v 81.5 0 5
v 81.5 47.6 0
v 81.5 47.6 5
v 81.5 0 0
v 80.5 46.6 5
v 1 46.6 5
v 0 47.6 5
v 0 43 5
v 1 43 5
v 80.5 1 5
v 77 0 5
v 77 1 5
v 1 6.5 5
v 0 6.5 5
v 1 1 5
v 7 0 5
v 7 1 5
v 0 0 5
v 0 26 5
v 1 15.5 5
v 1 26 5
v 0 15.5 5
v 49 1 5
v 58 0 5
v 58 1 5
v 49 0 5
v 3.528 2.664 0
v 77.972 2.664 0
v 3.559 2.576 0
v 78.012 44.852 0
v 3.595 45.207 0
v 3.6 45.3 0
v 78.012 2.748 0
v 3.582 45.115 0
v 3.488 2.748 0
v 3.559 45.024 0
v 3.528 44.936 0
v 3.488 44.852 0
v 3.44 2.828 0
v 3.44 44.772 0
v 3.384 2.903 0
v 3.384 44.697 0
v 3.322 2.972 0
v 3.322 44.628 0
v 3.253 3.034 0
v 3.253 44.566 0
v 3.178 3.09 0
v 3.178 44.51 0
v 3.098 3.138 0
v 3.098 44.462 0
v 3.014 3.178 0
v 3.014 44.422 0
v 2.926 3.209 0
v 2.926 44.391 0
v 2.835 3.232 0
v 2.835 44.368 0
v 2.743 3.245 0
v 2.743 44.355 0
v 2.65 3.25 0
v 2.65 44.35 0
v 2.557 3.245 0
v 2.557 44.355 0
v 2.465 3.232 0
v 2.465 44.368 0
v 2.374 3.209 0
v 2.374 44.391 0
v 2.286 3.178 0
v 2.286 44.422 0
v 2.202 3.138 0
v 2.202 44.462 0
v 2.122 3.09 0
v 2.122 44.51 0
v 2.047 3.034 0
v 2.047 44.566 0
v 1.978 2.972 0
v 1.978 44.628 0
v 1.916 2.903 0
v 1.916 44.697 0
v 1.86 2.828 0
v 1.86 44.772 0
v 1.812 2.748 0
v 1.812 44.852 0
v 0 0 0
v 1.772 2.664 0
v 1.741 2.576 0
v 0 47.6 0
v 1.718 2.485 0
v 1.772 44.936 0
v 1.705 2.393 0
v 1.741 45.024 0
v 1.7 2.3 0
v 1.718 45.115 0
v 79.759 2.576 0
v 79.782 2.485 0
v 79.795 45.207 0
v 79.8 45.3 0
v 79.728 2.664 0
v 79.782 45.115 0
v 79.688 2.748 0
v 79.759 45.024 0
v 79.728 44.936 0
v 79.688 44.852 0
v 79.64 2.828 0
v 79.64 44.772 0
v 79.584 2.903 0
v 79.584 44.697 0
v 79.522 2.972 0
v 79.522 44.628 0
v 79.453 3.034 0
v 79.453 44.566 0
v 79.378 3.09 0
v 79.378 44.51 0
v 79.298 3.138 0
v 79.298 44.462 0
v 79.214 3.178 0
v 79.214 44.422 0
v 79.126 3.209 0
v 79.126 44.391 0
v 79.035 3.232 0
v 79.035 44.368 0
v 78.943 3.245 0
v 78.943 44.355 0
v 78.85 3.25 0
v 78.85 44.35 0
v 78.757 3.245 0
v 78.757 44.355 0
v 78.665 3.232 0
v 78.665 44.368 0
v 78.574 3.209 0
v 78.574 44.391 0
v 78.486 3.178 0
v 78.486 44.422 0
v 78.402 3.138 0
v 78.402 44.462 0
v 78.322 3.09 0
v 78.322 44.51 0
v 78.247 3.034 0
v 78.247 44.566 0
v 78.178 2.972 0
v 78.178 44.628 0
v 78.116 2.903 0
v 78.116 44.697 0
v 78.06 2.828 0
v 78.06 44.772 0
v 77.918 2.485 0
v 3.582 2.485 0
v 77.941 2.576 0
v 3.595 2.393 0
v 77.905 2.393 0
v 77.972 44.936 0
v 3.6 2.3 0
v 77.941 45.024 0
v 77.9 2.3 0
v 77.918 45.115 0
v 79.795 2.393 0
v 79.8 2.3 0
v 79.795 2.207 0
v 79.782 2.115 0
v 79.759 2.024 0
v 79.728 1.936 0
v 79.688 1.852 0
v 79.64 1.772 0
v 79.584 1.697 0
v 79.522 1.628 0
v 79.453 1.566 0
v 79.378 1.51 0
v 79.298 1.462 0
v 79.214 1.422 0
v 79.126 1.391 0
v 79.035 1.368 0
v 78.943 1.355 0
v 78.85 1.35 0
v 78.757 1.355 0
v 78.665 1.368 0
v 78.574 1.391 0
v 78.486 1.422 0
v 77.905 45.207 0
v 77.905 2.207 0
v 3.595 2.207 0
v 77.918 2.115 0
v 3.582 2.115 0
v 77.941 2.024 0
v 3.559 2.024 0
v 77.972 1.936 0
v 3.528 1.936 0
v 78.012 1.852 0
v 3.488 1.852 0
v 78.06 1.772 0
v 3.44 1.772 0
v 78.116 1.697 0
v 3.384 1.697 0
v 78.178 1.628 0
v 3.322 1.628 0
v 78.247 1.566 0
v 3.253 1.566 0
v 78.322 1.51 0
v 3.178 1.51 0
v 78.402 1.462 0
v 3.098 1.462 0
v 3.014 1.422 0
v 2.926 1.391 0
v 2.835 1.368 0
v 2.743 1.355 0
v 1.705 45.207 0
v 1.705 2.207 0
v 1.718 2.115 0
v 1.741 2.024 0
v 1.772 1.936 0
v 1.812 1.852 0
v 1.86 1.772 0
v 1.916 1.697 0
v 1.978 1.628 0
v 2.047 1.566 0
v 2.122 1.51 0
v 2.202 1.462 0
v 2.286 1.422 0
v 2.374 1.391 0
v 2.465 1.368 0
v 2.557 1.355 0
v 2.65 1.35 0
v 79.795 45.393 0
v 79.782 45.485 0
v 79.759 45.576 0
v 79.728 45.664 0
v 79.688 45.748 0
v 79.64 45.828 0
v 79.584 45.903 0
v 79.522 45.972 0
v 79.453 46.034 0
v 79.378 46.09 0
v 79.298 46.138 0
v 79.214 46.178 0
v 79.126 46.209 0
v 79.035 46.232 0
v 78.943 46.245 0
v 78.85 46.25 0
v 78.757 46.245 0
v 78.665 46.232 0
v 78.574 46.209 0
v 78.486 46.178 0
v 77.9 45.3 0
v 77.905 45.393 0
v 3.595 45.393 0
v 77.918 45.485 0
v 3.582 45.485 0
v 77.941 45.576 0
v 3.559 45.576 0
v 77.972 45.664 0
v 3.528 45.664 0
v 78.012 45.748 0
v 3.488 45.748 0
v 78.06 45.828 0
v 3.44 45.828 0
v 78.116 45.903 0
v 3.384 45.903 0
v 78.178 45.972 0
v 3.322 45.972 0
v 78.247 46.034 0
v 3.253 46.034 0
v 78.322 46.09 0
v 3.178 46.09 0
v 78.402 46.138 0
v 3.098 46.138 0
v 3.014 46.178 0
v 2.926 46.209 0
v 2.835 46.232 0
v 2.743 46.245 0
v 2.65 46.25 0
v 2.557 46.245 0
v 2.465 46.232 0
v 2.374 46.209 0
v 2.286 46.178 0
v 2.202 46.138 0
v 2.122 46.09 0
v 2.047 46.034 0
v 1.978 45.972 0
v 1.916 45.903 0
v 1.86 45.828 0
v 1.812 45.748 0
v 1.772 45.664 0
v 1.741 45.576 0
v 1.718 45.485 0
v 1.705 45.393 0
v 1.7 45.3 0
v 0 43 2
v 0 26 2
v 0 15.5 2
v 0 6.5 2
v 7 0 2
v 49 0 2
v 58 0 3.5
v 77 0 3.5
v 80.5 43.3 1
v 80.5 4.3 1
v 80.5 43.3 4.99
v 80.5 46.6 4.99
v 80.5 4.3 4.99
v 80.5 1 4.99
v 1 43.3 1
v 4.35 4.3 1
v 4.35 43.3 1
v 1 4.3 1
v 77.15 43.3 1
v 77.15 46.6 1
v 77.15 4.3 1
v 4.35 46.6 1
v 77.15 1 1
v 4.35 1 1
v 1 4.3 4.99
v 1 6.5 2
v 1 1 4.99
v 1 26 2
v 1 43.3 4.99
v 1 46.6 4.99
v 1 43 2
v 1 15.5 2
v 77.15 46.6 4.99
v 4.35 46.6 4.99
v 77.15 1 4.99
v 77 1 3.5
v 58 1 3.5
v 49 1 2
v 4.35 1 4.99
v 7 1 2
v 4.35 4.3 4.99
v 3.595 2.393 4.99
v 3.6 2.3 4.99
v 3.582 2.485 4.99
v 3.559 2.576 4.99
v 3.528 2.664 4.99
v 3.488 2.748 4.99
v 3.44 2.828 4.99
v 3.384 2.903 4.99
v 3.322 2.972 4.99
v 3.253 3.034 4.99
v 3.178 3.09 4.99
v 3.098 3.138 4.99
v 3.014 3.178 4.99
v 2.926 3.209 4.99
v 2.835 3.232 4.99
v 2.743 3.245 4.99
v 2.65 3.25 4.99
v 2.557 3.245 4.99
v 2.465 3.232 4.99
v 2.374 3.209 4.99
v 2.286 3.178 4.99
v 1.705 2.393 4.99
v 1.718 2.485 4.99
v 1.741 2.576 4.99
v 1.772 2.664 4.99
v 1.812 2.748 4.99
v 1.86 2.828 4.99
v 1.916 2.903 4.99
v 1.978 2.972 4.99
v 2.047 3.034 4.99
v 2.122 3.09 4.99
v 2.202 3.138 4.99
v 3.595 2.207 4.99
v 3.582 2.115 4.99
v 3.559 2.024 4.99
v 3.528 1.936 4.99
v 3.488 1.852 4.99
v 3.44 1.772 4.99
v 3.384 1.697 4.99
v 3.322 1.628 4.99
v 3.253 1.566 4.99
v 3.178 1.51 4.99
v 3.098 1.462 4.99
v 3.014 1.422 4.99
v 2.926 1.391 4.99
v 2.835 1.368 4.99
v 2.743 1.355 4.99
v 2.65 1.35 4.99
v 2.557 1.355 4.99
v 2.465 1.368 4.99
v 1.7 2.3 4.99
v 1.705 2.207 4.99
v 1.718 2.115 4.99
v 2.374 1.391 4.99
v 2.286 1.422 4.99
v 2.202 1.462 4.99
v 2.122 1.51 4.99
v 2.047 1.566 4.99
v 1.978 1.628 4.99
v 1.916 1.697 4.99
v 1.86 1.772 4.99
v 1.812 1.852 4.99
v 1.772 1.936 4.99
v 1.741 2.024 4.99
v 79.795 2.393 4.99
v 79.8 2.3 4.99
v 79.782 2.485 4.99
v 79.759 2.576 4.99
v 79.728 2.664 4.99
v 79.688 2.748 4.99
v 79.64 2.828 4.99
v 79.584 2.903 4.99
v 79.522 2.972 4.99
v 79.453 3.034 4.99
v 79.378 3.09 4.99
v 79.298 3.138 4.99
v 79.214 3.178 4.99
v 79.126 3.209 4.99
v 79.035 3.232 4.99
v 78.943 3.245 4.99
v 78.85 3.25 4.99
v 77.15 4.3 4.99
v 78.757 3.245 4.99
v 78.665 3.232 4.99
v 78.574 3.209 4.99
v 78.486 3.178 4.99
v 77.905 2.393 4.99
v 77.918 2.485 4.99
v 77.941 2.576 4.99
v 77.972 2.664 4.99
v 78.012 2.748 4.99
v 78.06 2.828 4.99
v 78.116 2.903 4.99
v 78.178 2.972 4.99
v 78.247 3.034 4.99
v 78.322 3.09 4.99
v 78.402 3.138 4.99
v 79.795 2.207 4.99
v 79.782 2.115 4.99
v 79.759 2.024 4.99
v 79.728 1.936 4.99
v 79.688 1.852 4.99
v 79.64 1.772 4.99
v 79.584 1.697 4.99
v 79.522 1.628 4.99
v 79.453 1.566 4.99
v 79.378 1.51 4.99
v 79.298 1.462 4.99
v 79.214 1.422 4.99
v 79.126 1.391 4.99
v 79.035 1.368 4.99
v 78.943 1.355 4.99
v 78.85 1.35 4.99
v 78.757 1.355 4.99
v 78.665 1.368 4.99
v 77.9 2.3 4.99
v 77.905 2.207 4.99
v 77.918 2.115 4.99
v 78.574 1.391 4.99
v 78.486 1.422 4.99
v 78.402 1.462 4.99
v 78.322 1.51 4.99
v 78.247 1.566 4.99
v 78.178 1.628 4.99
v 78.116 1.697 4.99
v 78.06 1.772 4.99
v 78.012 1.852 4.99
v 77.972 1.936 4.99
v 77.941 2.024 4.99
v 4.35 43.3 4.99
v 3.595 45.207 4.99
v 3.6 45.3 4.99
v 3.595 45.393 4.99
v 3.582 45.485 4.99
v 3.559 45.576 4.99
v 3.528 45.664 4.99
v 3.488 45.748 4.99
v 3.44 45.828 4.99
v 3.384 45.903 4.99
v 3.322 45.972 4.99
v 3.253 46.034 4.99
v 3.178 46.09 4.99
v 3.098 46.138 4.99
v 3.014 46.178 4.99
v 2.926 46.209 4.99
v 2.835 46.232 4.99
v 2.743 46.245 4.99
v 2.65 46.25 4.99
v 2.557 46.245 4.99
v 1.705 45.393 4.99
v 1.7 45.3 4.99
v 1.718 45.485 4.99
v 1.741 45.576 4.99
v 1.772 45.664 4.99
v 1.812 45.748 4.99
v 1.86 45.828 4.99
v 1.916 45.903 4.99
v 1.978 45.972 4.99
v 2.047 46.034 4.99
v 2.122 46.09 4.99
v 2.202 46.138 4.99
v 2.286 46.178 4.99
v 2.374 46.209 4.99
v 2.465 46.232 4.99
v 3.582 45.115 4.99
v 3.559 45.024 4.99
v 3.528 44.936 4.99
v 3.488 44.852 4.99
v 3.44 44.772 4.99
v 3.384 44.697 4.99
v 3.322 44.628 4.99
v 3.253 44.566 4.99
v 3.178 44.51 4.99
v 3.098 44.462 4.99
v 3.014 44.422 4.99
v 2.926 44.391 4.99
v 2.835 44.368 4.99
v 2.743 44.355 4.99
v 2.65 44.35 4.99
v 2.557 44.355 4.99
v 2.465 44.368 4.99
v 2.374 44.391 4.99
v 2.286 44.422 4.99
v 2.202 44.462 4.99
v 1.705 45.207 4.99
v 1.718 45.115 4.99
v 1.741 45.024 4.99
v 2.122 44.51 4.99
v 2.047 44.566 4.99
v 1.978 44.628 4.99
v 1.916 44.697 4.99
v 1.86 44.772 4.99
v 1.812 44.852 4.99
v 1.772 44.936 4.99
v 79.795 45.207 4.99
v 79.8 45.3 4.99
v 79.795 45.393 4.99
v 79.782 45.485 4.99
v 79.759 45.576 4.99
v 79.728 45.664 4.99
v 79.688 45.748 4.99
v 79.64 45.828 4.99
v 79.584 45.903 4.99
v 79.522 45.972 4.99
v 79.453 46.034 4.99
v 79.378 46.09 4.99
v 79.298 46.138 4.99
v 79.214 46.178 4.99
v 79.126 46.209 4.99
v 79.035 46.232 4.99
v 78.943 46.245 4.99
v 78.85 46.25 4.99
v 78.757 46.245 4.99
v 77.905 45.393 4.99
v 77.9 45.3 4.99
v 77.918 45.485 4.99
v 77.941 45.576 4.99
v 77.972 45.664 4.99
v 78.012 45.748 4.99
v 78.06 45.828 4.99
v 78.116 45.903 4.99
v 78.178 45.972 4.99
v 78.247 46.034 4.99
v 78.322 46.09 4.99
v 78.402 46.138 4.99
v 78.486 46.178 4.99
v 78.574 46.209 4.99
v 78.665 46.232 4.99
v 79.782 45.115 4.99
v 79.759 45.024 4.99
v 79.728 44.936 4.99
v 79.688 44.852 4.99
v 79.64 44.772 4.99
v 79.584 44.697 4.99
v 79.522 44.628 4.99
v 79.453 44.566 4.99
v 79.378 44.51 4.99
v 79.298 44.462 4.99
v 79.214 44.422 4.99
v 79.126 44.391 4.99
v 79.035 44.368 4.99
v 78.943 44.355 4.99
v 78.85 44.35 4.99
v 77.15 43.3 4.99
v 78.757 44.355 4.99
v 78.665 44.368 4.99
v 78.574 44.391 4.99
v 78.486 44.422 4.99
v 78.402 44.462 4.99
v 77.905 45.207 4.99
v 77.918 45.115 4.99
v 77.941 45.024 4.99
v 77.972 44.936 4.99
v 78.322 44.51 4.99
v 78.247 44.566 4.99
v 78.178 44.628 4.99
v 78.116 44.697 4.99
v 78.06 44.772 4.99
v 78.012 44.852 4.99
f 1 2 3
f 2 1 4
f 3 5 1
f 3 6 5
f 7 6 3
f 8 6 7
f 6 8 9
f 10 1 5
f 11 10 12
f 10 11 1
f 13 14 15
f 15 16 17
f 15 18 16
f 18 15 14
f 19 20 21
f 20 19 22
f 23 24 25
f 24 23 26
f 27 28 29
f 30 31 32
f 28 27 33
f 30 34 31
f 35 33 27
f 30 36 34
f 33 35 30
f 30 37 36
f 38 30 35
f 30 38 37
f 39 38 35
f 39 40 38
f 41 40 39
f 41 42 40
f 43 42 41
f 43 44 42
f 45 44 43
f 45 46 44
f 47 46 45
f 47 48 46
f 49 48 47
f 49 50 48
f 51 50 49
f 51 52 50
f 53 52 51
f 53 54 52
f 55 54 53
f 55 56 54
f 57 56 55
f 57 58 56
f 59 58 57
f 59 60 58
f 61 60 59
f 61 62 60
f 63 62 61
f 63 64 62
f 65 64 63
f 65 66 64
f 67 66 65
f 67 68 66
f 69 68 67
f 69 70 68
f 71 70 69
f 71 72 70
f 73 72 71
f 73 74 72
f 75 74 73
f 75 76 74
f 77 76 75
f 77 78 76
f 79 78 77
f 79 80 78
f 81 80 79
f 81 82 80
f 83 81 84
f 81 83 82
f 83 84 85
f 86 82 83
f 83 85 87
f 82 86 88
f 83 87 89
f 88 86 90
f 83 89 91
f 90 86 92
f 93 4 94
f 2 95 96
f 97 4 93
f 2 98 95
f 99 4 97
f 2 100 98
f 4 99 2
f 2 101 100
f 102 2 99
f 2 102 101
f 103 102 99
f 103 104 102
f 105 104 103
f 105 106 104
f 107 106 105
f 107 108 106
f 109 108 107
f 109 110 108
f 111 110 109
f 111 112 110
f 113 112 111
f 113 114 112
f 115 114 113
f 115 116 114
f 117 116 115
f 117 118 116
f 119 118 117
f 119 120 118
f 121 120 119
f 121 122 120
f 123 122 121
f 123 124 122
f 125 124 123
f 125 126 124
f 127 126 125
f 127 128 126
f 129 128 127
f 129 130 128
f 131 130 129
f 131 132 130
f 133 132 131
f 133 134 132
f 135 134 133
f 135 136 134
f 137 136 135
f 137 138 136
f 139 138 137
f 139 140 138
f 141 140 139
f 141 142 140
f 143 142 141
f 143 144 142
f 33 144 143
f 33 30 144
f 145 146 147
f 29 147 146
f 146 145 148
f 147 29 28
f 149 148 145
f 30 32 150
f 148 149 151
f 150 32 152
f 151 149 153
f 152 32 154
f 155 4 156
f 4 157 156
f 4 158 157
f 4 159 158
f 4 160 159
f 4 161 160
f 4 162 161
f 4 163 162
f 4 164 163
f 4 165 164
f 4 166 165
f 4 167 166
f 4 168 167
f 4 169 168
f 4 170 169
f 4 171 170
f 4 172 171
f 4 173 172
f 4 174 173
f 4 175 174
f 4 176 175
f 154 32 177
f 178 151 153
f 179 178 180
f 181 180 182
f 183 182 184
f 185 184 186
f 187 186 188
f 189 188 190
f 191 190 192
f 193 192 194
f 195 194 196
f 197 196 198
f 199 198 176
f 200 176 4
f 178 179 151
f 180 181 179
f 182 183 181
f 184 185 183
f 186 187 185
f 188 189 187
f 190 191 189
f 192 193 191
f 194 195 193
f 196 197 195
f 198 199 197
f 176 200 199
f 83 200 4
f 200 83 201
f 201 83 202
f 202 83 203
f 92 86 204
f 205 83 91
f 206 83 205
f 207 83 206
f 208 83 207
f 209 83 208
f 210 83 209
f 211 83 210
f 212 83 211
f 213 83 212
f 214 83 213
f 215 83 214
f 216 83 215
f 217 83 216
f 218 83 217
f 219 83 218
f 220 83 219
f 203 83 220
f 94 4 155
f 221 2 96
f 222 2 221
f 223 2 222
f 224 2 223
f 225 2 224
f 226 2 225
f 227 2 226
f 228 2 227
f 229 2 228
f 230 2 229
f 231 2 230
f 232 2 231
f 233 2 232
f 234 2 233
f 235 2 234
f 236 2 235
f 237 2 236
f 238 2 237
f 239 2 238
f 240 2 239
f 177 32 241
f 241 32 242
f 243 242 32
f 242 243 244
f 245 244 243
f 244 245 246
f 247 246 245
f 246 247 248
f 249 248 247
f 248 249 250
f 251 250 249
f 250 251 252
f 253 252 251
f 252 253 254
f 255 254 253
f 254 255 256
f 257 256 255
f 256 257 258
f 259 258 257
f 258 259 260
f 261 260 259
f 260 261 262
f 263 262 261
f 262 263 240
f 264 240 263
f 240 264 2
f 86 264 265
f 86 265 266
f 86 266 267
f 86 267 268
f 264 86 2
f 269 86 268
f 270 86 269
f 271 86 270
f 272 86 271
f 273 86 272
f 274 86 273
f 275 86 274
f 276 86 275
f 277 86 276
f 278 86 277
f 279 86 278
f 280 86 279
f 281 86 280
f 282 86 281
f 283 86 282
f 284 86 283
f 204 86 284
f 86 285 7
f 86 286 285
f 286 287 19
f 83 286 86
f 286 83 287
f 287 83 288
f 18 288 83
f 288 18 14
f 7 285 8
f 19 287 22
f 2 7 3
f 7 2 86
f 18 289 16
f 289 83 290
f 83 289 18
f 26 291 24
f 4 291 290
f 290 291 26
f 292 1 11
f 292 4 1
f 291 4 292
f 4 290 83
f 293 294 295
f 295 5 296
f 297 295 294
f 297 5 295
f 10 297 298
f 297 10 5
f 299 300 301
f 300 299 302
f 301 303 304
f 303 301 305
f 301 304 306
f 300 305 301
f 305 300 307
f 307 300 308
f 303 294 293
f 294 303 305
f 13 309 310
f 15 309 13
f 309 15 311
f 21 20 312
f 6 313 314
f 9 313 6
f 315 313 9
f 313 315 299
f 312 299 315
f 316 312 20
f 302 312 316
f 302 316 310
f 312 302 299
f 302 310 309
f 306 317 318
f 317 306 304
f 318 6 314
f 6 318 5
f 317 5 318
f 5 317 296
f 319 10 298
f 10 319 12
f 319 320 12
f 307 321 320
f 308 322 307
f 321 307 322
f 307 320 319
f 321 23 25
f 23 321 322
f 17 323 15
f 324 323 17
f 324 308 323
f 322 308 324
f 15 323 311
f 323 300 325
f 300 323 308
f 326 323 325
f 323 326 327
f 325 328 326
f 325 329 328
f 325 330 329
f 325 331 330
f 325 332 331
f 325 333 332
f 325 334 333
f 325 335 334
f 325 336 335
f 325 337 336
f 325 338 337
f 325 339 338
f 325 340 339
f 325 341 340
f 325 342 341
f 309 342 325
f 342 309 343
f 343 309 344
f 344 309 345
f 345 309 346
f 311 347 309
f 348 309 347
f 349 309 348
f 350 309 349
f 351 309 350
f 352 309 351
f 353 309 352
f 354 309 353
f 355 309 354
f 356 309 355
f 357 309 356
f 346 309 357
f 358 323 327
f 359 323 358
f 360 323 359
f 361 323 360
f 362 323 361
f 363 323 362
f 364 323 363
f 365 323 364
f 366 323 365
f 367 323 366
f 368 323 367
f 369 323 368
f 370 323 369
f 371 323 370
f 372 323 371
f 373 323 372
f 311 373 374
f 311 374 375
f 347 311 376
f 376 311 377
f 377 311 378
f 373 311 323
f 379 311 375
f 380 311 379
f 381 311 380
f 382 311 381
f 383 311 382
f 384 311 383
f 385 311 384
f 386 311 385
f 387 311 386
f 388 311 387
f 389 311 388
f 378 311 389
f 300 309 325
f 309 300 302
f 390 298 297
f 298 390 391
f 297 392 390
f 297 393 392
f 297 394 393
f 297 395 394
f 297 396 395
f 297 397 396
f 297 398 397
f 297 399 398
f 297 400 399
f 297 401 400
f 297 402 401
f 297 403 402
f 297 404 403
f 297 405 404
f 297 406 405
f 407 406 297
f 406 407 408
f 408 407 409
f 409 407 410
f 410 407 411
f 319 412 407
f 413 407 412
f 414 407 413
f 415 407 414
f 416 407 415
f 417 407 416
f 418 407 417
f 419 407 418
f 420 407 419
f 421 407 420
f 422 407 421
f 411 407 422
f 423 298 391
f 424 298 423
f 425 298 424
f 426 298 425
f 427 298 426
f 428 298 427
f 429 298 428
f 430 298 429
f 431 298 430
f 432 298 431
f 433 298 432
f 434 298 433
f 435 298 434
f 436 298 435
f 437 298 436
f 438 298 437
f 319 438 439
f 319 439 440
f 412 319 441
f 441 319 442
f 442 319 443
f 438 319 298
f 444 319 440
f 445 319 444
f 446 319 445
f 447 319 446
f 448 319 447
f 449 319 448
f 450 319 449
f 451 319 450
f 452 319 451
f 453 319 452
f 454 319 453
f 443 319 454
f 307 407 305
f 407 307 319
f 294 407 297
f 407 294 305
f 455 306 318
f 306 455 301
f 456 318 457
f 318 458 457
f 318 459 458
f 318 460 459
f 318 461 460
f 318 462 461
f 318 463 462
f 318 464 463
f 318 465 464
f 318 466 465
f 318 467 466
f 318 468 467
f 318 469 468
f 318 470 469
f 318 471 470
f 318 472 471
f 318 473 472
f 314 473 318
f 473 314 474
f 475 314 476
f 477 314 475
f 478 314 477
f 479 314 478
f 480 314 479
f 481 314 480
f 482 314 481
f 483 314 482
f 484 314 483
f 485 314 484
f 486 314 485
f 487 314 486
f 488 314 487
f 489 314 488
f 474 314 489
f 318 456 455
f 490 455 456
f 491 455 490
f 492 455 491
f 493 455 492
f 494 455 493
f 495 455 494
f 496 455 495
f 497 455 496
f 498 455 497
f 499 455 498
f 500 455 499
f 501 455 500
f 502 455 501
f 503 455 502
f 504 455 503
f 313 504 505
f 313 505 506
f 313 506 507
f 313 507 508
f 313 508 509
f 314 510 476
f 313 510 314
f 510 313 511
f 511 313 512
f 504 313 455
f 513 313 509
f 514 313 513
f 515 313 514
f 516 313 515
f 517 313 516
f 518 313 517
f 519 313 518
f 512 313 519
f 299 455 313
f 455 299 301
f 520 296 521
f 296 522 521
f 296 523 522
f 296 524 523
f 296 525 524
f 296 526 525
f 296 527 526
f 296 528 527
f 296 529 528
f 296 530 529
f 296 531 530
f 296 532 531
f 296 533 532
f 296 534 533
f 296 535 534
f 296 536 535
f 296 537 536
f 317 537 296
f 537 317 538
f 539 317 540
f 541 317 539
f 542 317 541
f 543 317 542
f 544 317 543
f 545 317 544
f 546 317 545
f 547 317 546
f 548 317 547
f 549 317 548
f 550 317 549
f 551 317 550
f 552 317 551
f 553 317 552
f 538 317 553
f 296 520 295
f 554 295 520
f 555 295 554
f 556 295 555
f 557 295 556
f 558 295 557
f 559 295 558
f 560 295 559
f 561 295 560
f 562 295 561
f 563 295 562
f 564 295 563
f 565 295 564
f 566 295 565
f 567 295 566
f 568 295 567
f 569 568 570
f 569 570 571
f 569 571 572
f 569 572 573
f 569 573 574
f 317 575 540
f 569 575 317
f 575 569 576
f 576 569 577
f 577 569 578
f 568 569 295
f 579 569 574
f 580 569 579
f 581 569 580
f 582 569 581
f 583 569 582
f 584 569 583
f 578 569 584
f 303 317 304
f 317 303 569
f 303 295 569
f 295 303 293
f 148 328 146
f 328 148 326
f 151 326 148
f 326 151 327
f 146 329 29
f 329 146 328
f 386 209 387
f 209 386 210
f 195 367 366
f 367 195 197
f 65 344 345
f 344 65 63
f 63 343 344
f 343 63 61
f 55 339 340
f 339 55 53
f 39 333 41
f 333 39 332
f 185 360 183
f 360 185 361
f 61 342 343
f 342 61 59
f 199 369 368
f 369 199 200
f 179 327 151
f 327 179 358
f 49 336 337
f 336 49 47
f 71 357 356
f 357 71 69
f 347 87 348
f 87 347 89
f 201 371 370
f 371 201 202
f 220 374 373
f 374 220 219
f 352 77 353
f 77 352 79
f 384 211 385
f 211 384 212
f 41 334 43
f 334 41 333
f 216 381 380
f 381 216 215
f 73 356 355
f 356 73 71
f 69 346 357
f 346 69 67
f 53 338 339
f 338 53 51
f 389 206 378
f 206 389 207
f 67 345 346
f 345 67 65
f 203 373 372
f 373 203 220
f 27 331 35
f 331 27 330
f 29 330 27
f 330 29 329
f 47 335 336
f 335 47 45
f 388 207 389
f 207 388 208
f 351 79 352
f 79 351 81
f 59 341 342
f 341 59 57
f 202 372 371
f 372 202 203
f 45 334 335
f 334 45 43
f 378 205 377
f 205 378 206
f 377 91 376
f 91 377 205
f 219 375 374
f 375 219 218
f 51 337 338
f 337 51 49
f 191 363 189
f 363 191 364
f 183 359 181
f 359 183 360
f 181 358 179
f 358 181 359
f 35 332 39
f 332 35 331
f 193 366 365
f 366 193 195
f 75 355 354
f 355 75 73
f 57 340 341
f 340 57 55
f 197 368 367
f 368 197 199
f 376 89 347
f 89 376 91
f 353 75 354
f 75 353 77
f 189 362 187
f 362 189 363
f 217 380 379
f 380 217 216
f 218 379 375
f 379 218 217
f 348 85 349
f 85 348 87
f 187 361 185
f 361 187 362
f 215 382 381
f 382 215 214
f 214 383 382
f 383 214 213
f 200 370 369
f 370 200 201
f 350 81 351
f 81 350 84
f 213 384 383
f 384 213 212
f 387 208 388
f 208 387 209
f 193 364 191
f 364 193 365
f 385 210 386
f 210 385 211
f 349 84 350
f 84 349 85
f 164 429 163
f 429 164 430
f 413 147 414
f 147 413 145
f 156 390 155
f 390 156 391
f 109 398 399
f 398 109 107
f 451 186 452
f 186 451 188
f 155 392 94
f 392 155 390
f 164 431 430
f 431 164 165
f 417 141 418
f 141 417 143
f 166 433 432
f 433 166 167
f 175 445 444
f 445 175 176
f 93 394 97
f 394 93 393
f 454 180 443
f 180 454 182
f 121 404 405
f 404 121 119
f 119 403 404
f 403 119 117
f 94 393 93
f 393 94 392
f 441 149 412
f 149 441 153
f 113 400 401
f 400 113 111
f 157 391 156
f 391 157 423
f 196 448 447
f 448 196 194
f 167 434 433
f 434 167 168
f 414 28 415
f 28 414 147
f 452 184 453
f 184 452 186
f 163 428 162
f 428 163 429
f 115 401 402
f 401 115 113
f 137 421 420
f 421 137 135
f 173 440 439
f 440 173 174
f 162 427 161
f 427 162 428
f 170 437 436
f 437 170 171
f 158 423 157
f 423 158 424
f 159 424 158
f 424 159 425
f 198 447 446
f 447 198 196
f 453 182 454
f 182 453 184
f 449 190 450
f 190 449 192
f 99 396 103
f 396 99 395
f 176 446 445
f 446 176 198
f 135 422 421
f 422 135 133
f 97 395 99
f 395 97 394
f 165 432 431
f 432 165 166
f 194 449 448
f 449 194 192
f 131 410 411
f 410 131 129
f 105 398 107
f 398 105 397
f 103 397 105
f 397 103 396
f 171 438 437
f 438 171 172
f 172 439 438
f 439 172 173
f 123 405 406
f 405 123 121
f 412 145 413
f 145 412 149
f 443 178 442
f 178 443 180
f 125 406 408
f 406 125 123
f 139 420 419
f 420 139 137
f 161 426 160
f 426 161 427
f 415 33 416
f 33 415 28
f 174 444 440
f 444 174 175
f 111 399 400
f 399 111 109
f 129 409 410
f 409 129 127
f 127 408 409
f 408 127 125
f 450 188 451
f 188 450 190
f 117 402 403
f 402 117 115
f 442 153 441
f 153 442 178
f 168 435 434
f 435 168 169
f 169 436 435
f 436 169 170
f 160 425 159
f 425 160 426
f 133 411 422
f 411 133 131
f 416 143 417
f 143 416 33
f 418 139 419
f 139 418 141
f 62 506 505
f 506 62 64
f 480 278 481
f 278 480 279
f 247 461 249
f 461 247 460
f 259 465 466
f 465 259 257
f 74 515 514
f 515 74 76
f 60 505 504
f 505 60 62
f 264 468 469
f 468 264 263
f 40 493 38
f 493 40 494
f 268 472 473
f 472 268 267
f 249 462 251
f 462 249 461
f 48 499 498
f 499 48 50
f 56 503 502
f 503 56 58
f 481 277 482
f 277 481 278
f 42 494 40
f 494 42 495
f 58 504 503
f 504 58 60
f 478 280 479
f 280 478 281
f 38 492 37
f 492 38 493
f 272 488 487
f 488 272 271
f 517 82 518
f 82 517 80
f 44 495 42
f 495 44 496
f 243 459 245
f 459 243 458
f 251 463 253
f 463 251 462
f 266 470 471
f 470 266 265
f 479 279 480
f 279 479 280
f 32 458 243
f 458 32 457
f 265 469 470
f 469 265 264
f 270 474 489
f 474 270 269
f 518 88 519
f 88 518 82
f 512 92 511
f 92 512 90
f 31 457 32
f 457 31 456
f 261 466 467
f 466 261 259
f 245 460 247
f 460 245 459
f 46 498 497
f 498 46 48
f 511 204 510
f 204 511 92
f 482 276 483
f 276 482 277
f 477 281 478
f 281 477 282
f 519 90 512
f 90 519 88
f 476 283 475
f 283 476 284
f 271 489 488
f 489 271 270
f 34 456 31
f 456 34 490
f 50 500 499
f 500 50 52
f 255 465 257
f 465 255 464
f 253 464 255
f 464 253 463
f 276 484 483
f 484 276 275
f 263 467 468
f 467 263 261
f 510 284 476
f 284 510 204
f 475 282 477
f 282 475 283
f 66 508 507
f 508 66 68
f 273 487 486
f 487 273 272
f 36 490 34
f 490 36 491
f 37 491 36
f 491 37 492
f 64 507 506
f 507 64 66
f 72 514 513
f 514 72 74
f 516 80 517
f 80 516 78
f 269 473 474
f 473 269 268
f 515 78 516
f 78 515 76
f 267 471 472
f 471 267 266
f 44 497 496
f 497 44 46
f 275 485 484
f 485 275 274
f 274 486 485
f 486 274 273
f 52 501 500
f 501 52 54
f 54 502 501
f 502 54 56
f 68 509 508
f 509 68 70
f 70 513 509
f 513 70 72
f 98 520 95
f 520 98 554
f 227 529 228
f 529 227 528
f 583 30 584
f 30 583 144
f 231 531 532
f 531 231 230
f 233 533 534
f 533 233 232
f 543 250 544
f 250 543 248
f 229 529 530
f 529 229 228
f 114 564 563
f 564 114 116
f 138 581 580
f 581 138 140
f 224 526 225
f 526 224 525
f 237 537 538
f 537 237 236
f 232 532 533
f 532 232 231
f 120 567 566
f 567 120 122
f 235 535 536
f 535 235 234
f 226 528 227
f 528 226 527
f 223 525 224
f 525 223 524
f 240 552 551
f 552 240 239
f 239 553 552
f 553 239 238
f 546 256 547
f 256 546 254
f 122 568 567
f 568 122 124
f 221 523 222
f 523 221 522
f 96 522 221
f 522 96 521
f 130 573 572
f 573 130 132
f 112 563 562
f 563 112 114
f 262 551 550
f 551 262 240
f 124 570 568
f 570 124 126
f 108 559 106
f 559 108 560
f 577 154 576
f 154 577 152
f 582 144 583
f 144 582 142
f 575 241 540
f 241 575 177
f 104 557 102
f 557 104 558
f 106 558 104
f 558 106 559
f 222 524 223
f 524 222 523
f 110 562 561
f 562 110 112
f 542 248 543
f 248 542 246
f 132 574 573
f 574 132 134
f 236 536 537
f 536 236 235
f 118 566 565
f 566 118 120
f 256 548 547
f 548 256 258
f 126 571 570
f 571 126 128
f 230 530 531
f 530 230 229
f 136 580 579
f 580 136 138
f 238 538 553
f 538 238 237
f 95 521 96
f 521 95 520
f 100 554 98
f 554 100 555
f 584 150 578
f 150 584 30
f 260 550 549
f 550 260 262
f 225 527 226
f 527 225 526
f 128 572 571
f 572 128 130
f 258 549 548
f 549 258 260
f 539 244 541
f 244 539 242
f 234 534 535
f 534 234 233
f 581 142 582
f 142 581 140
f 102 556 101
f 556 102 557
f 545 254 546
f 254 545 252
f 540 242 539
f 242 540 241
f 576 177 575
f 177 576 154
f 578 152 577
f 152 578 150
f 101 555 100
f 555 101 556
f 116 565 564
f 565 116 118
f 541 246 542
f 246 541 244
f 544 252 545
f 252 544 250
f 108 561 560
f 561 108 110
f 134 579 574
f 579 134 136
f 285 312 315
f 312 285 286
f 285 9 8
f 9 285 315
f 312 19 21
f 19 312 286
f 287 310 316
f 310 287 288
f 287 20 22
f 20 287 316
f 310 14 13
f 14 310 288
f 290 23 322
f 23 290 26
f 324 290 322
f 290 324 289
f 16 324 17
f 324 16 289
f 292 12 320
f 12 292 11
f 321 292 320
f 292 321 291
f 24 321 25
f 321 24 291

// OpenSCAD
//
// OpenSCAD file for a simple enclosure for the Moddable-2,
// an ESP32-based embedded development module with touch screen.
// see https://www.moddable.com/purchase.php
//
// (C) 2019 Johannes Ernst
//
// This work is licensed under a
// Creative Commons Attribution-NonCommercial-ShareAlike 4.0
// International License.
// See http://creativecommons.org/licenses/by-nc-sa/4.0/
//

// all units in mm

length =  81.5;   // outside length
width  =  47.6;   // outside width
th     =  1;      // wall thickness
depth  =  4 + th; // inside height plus wall thickness

holes_length = 25.4 * 3; // distance of mounting holes along length (apparently 3in)
holes_width  = 43;       // distance of mounting holes along width

post_length = 3.4;       // length of the post that contains the screw hole
post_width  = 4;         // width of the post that contains the screw hole

hole_r = 1.9/2; // M2 screw needing to cut its own thread
                // you may need to adjust this based on the behavior of your
                // printer and which exact screws you are using.

cutout = 3;     // height of the cutouts for the terminals

eps    = 0.01;  // helper constant to avoid floating-point errors

$fn = 64;  // smoothness of the round surfaces

// post that will contain the screw hole
module post() {
    translate( [ -post_length/2, -post_width/2, 0 ] ) {
        cube( [ post_length, post_width, depth-eps ] );
    }
}

// the screw hole
module post_hole() {
    translate( [ 0, 0, -eps ] ) {
        cylinder( r=hole_r, h = depth + 2*eps, center=false);
    }
}

// the actual enclosure
difference() {
    union() {

        // the shell
        difference() {
            cube( [ length, width, depth ] );
            translate( [ th, th, th ] ) {
                cube( [ length - 2*th, width - 2*th, depth ] );
            }
        };

        // 4 posts
        translate( [ (length - holes_length)/2, (width - holes_width)/2, 0 ] ) {
            post();
        };
        translate( [ (length + holes_length)/2, (width - holes_width)/2, 0 ] ) {
            post();
        };
        translate( [ (length - holes_length)/2, (width + holes_width)/2, 0 ] ) {
            post();
        };
        translate( [ (length + holes_length)/2, (width + holes_width)/2, 0 ] ) {
            post();
        };
    };

    // minus 4 holes
    translate( [ (length - holes_length)/2, (width - holes_width)/2, 0 ] ) {
        post_hole();
    };
    translate( [ (length + holes_length)/2, (width - holes_width)/2, 0 ] ) {
        post_hole();
    };
    translate( [ (length - holes_length)/2, (width + holes_width)/2, 0 ] ) {
        post_hole();
    };
    translate( [ (length + holes_length)/2, (width + holes_width)/2, 0 ] ) {
        post_hole();
    };

    // minus cutout for serial
    translate( [ -eps, 26, depth - cutout ] ) {
        cube( [ th + 2*eps, 17, cutout + eps ] );
    }
    // minus cutout for USB
    translate( [ -eps, 6.5, depth - cutout ] ) {
        cube( [ th + 2*eps, 9, cutout + eps ] );
    }
    // minus cutout for GPIO
    translate( [ 7, -eps, depth - cutout ] ) {
        cube( [ 42, th + 2*eps, cutout + eps ] );
    }
    // minus cutout for chip
    translate( [ 58, -eps, depth - cutout/2 ] ) {
        cube( [ 19, th + 2*eps, cutout/2 + eps ] );
    }
};
